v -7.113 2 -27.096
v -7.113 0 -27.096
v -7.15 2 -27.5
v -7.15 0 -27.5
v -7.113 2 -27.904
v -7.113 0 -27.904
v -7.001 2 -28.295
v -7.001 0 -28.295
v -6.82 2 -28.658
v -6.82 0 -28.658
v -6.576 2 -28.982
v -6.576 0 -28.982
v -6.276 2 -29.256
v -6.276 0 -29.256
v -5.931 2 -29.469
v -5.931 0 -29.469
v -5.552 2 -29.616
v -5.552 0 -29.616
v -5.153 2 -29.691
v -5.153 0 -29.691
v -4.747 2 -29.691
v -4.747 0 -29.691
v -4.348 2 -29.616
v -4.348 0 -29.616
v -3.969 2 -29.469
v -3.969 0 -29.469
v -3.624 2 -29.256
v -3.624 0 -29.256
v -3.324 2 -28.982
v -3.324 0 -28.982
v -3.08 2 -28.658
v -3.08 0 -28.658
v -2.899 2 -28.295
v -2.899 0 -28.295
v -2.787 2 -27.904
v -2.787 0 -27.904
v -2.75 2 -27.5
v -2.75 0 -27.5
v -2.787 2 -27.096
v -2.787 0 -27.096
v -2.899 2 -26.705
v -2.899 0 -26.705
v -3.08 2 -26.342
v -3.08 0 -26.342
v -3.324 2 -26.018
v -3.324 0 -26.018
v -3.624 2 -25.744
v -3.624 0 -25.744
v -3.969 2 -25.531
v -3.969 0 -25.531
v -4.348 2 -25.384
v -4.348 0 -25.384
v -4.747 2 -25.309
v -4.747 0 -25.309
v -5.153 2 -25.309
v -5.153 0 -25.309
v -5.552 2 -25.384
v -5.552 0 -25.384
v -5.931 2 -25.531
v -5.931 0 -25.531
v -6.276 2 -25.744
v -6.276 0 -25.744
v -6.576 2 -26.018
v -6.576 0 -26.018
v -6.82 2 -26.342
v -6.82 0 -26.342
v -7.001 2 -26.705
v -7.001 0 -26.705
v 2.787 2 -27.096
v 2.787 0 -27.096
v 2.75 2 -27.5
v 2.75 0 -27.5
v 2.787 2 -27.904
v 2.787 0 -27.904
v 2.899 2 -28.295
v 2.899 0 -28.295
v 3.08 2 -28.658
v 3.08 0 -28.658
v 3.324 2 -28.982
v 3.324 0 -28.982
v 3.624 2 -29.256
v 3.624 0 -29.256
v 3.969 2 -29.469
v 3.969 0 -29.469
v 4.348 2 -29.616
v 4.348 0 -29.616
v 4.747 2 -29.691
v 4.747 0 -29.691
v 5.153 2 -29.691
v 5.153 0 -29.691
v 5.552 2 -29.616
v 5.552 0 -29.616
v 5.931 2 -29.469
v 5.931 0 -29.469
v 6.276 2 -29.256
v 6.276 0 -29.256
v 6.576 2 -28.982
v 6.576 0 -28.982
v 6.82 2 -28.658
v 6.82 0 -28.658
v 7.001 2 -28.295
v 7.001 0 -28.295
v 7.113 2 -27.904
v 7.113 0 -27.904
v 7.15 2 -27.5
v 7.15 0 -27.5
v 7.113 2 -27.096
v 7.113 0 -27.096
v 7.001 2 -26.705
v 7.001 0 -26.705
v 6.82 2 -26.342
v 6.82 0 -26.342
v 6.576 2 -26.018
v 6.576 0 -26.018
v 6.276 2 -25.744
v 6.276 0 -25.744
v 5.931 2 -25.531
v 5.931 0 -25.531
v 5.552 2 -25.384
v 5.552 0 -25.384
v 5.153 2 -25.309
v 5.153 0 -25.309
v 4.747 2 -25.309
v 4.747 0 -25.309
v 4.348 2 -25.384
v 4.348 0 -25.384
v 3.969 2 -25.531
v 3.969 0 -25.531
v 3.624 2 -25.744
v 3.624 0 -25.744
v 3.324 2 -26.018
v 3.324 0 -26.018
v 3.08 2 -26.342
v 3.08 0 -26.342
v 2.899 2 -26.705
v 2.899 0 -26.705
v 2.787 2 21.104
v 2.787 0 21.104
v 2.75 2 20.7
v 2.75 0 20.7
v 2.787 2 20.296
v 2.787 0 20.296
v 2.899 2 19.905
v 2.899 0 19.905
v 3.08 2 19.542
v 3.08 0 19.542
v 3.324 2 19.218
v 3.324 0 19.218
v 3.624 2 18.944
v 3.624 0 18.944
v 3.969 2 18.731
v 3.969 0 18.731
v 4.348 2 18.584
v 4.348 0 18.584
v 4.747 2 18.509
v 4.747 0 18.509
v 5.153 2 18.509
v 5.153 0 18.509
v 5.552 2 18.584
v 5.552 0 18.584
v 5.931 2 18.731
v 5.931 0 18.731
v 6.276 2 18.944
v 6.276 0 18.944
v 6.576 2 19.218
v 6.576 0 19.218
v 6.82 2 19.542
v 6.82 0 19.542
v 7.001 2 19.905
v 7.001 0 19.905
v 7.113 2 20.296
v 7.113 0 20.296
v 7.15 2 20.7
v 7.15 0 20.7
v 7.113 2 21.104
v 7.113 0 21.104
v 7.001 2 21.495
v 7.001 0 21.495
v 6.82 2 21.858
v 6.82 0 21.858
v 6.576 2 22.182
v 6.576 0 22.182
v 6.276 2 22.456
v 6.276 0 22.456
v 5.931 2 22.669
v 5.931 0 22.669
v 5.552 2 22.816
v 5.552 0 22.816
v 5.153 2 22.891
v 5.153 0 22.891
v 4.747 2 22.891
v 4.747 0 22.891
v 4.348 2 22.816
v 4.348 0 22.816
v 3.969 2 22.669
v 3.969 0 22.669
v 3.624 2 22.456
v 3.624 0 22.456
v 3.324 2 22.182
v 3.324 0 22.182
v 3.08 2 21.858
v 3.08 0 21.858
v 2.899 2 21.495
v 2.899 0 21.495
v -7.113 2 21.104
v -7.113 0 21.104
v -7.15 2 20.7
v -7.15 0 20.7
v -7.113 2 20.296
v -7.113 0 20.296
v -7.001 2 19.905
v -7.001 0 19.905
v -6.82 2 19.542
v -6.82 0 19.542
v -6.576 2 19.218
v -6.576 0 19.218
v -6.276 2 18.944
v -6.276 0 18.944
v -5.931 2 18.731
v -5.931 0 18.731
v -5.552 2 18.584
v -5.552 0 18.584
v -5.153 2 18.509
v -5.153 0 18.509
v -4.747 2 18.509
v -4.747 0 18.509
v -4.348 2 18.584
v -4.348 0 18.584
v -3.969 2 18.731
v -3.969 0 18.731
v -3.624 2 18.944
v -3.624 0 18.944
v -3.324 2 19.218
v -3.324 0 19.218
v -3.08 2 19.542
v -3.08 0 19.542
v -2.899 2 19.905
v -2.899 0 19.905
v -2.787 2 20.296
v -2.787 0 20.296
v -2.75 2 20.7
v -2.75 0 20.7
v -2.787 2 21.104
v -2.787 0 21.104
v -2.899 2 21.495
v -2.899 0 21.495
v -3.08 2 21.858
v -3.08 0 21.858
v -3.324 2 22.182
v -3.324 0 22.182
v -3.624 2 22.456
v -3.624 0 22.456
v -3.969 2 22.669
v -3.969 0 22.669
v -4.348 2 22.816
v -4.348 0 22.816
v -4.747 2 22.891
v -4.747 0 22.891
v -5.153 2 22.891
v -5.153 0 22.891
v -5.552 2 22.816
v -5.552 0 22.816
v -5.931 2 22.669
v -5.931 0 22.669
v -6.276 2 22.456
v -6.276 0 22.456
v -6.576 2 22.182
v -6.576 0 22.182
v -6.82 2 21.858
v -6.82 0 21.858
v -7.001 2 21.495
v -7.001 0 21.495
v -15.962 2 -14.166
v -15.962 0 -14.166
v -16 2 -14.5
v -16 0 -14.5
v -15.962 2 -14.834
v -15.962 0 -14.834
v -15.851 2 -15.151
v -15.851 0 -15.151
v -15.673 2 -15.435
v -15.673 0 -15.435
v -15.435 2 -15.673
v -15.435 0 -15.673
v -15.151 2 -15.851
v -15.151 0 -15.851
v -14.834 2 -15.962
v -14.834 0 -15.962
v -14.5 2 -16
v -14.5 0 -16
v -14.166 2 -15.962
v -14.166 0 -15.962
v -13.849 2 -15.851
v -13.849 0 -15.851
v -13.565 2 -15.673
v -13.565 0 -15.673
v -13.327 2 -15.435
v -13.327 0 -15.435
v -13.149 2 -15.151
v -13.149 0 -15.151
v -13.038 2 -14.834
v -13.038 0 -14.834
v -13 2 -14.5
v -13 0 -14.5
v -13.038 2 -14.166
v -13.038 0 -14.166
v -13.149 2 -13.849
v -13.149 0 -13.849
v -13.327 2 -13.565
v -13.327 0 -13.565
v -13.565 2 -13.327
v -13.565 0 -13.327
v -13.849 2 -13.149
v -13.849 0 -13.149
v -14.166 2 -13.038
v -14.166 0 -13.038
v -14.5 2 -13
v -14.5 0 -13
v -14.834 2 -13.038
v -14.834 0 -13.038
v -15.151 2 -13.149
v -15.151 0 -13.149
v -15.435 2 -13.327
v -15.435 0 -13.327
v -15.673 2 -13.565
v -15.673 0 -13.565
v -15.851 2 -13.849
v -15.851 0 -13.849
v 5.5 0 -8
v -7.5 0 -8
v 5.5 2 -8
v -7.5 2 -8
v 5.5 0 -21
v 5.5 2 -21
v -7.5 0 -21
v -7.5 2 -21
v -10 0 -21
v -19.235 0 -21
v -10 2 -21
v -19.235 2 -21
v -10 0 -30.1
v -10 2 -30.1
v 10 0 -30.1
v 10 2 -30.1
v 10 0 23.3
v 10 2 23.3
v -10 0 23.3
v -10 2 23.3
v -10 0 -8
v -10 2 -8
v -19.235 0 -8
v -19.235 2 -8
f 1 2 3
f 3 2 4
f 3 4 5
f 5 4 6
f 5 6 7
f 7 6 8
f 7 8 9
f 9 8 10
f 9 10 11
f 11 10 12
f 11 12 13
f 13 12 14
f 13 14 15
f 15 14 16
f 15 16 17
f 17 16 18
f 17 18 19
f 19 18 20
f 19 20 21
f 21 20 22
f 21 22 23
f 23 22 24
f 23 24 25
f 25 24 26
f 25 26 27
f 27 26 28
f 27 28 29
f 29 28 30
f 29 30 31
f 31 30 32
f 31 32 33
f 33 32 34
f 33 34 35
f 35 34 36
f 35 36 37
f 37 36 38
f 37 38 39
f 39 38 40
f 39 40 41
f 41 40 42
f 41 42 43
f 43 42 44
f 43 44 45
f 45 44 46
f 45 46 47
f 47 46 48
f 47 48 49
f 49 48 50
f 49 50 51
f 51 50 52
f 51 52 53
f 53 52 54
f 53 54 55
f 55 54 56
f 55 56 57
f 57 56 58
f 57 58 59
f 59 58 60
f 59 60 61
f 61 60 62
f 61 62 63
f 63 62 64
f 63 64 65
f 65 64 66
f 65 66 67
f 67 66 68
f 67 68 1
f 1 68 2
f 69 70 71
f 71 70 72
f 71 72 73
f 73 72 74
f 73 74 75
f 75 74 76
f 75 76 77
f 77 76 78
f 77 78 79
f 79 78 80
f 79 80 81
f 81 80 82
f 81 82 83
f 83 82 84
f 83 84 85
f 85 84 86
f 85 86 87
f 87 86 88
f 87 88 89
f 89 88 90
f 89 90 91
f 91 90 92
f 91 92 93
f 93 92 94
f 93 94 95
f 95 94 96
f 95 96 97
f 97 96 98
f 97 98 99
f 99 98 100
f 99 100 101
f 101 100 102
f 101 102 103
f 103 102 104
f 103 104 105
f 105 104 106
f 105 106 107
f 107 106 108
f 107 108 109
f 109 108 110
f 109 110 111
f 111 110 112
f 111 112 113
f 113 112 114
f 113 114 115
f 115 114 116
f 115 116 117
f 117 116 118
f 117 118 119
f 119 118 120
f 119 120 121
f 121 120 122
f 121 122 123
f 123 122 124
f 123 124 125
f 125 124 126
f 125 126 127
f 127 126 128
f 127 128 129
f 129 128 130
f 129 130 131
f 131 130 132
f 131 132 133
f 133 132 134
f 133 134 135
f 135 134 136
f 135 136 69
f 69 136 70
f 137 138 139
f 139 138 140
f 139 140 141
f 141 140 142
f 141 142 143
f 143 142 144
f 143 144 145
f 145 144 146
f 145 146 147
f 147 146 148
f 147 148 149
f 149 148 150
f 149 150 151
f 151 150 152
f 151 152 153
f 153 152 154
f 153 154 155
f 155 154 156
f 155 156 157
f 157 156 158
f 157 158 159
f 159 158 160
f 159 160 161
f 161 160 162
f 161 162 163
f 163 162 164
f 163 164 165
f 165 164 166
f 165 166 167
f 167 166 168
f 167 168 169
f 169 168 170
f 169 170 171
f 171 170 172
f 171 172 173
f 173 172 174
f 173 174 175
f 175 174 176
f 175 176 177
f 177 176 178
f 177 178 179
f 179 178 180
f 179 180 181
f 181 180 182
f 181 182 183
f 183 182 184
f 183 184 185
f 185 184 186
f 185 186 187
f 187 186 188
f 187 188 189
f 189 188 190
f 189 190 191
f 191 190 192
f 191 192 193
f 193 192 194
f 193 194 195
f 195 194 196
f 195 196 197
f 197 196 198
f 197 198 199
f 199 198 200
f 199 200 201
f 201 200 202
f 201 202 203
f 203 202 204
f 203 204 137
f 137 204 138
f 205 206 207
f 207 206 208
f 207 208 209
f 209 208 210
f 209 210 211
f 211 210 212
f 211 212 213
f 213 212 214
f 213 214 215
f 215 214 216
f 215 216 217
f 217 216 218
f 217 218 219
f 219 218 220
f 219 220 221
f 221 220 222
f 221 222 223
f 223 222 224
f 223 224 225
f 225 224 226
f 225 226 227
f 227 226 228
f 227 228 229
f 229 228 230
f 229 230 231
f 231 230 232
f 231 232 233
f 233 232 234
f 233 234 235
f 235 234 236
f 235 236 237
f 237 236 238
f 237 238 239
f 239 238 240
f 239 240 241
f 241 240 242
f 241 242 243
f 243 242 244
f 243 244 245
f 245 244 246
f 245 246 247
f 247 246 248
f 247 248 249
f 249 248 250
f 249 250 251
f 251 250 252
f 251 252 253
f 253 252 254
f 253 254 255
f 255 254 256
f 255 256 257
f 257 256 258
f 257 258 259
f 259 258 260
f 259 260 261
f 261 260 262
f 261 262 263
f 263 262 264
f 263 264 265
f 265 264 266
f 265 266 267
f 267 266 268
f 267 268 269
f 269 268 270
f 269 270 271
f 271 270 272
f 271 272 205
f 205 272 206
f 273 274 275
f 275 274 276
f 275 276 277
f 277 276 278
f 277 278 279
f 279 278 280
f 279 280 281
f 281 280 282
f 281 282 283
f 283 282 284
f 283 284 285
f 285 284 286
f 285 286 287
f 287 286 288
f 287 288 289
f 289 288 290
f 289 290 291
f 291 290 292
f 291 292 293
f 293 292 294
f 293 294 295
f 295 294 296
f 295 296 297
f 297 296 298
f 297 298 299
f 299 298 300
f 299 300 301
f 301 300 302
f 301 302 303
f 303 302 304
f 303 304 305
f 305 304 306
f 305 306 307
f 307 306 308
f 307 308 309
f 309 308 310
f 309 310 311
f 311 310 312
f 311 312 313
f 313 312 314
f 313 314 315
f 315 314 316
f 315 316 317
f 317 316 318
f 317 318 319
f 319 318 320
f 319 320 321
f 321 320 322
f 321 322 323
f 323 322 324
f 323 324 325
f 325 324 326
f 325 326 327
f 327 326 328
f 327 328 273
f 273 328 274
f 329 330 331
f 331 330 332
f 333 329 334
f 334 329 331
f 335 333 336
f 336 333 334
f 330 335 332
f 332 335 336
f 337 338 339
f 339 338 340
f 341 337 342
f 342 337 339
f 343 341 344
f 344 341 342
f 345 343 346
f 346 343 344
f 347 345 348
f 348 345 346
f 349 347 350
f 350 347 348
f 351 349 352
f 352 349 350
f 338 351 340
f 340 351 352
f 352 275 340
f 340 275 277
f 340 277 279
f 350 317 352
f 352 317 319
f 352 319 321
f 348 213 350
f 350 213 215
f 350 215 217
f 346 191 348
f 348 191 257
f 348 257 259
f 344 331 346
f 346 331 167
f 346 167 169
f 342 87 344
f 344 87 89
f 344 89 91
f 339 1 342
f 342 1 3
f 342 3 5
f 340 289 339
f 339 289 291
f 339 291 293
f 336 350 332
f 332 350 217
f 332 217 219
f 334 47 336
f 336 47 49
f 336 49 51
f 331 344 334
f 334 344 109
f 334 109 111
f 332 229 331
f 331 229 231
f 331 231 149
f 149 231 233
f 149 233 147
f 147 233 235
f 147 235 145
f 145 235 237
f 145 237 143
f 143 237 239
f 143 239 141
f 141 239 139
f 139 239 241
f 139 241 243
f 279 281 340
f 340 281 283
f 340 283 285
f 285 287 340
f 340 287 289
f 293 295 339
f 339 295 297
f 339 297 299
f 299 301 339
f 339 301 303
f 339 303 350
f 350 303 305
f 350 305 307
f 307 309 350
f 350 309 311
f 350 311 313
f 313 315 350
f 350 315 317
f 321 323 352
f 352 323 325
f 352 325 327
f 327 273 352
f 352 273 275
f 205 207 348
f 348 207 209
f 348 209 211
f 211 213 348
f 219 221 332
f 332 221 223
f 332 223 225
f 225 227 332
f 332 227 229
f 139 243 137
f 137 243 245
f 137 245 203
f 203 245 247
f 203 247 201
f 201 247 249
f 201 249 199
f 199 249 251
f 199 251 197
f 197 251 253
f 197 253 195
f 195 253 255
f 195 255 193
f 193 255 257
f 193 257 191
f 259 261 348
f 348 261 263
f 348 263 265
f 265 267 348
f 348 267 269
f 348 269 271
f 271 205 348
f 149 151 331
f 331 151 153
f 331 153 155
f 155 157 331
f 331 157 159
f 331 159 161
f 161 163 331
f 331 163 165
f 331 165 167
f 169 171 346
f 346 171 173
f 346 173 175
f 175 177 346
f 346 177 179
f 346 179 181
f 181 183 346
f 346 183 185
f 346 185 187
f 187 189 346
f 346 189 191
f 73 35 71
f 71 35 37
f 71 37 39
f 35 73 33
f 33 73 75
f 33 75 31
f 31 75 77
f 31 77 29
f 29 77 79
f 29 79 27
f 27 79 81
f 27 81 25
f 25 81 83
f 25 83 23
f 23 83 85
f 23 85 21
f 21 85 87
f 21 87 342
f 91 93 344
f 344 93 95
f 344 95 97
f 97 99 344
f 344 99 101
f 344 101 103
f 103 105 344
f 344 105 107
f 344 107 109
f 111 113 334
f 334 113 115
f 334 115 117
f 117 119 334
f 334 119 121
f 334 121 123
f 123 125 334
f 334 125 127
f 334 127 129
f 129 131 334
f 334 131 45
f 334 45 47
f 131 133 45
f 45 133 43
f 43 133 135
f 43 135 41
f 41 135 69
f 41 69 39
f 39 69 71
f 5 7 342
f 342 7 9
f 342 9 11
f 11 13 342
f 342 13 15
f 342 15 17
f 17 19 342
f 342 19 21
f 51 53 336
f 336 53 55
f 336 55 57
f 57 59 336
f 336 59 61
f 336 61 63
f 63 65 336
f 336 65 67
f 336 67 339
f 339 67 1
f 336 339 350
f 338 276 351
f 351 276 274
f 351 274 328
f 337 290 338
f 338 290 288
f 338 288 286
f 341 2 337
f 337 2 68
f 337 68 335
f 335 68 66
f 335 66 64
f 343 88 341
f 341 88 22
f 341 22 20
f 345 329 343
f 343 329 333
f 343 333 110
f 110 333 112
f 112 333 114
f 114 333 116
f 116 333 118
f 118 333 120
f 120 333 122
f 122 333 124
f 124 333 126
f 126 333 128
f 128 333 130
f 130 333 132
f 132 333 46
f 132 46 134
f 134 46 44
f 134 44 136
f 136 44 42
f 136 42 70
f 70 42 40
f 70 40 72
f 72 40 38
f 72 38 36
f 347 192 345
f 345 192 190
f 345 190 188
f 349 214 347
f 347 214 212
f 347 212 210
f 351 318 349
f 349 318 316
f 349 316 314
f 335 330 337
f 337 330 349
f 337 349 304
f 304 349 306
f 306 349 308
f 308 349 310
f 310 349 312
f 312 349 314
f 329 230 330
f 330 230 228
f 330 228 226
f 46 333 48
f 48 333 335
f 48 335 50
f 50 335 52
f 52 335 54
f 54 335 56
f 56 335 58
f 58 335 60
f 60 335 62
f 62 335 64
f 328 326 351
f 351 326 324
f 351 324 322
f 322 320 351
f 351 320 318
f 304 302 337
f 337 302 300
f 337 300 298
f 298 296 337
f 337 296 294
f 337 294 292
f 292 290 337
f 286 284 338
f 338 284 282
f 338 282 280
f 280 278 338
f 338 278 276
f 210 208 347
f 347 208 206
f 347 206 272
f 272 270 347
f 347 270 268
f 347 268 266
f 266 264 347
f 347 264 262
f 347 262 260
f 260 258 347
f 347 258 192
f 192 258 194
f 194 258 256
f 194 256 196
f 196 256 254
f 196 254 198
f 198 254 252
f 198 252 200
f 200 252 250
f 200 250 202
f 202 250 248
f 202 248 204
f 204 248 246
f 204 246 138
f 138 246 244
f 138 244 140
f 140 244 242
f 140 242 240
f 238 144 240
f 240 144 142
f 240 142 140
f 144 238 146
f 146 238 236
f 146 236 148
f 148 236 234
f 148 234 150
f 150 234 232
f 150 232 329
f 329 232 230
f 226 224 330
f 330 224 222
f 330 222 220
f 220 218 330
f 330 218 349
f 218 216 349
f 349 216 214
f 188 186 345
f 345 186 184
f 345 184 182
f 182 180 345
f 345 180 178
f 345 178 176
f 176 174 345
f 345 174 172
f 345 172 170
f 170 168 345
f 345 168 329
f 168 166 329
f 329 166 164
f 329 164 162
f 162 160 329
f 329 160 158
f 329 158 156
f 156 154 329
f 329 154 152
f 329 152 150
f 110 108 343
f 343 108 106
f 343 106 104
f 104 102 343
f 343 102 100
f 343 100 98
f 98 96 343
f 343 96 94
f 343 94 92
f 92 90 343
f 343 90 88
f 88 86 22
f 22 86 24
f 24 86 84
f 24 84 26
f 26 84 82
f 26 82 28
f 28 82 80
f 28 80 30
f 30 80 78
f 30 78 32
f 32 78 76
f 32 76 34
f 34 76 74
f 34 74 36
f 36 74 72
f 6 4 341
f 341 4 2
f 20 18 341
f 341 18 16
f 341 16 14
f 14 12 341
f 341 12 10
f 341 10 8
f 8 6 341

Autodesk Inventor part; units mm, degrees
ref_plane "YZ Plane" through (0, 0, 0) normal (1, 0, 0) x (0, 1, 0)
ref_plane "XZ Plane" through (0, 0, 0) normal (0, 1, 0) x (-1, 0, 0)
ref_plane "XY Plane" through (0, 0, 0) normal (0, 0, 1) x (1, 0, 0)
sketch "Boceto1" plane through (0, 0, 0) normal (0, 1, 0) x (-1, 0, 0)
  line L0 (0, -30.1) -> (-8.9011, -30.1)
  line L1 (0, -30.1) -> (-10, -30.1)
  line L2 (0, -30.1) -> (10, -30.1)
  line L3 (10, -30.1) -> (10, 23.3)
  line L4 (10, -30.1) -> (63.4, -30.1) construction
  line L5 (10, 23.3) -> (-10, 23.3)
  line L6 (-10, 23.3) -> (-10, -30.1)
  line L7 (-10, 23.3) -> (-10, 20.7)
  line L8 (-10, 20.7) -> (10, 20.7)
  line L9 (0, 20.7) -> (4.95, 20.7)
  line L10 (4.95, 20.7) -> (-4.95, 20.7)
  circle A0 centre (4.95, 20.7) radius 2.2
  circle A1 centre (-4.95, 20.7) radius 2.2
  line L11 (10, 0) -> (5.5615, 0)
  line L12 (-10, -30.1) -> (-10, -27.5)
  circle A2 centre (4.95, -27.5) radius 2.2
  circle A3 centre (-4.95, -27.5) radius 2.2
  circle A4 centre (4.95, 20.7) radius 2.2
  circle A5 centre (-4.95, 20.7) radius 2.2
  line L13 (7.5, -13.5) -> (7.5, -21)
  line L14 (7.5, -21) -> (-5.5, -21)
  line L15 (-5.5, -21) -> (-5.5, -8)
  line L16 (-5.5, -8) -> (7.5, -8)
  line L17 (7.5, -8) -> (7.5, -13.5)
  line L18 (1, -8) -> (1, -21)
  line L19 (-5.5, -14.5) -> (7.5, -14.5)
  line L20 (1, -14.5) -> (14.5, -14.5)
  circle A6 centre (14.5, -14.5) radius 1.5
  line L21 (10, -8) -> (19.2349, -8)
  line L22 (19.2349, -8) -> (19.2349, -21)
  line L23 (19.2349, -21) -> (10, -21)
  point P0 (0, 0)
  dimension "d8" = 53.4
  dimension "d9" = 90
  dimension "d10" = 20
  dimension "d11" = 2.6
  dimension "d12" = 4.95
  dimension "d13" = 9.9
  dimension "d14" = 4.4
  dimension "d15" = 4.4
  dimension "d16" = 2.6
  dimension "d19" = 4.4
  dimension "d20" = 4.4
  dimension "d26" = 13.5
  dimension "d27" = 3
extrude "Extrusión1" add sketch "Boceto1" along normal blind 2 contours L0 L1 L6 L8 A1 A0 L3 L2 | L3 L21 L22 L23 | L6 L5 L3 L8 A0 A1
properties part number "plataforma_nueva"
